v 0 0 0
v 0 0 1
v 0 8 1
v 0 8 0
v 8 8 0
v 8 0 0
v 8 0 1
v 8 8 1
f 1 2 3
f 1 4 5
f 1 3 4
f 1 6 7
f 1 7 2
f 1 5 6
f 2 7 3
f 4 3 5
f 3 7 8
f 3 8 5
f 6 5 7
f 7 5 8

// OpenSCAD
/* Warning, this is a very basic generator with a lot of approximation 
input data : [VQFN, K3C, 8x8x1.0mm, 56, , A, C04-25665A]
generated by com.zoubworld.electronics.cad.model3d.Basic
Date : Sun Feb 15 10:50:49 CET 2026
*/

//body
color("black")
translate([0,0,0])
cube([8.0,8.0,1.0], center=false);
